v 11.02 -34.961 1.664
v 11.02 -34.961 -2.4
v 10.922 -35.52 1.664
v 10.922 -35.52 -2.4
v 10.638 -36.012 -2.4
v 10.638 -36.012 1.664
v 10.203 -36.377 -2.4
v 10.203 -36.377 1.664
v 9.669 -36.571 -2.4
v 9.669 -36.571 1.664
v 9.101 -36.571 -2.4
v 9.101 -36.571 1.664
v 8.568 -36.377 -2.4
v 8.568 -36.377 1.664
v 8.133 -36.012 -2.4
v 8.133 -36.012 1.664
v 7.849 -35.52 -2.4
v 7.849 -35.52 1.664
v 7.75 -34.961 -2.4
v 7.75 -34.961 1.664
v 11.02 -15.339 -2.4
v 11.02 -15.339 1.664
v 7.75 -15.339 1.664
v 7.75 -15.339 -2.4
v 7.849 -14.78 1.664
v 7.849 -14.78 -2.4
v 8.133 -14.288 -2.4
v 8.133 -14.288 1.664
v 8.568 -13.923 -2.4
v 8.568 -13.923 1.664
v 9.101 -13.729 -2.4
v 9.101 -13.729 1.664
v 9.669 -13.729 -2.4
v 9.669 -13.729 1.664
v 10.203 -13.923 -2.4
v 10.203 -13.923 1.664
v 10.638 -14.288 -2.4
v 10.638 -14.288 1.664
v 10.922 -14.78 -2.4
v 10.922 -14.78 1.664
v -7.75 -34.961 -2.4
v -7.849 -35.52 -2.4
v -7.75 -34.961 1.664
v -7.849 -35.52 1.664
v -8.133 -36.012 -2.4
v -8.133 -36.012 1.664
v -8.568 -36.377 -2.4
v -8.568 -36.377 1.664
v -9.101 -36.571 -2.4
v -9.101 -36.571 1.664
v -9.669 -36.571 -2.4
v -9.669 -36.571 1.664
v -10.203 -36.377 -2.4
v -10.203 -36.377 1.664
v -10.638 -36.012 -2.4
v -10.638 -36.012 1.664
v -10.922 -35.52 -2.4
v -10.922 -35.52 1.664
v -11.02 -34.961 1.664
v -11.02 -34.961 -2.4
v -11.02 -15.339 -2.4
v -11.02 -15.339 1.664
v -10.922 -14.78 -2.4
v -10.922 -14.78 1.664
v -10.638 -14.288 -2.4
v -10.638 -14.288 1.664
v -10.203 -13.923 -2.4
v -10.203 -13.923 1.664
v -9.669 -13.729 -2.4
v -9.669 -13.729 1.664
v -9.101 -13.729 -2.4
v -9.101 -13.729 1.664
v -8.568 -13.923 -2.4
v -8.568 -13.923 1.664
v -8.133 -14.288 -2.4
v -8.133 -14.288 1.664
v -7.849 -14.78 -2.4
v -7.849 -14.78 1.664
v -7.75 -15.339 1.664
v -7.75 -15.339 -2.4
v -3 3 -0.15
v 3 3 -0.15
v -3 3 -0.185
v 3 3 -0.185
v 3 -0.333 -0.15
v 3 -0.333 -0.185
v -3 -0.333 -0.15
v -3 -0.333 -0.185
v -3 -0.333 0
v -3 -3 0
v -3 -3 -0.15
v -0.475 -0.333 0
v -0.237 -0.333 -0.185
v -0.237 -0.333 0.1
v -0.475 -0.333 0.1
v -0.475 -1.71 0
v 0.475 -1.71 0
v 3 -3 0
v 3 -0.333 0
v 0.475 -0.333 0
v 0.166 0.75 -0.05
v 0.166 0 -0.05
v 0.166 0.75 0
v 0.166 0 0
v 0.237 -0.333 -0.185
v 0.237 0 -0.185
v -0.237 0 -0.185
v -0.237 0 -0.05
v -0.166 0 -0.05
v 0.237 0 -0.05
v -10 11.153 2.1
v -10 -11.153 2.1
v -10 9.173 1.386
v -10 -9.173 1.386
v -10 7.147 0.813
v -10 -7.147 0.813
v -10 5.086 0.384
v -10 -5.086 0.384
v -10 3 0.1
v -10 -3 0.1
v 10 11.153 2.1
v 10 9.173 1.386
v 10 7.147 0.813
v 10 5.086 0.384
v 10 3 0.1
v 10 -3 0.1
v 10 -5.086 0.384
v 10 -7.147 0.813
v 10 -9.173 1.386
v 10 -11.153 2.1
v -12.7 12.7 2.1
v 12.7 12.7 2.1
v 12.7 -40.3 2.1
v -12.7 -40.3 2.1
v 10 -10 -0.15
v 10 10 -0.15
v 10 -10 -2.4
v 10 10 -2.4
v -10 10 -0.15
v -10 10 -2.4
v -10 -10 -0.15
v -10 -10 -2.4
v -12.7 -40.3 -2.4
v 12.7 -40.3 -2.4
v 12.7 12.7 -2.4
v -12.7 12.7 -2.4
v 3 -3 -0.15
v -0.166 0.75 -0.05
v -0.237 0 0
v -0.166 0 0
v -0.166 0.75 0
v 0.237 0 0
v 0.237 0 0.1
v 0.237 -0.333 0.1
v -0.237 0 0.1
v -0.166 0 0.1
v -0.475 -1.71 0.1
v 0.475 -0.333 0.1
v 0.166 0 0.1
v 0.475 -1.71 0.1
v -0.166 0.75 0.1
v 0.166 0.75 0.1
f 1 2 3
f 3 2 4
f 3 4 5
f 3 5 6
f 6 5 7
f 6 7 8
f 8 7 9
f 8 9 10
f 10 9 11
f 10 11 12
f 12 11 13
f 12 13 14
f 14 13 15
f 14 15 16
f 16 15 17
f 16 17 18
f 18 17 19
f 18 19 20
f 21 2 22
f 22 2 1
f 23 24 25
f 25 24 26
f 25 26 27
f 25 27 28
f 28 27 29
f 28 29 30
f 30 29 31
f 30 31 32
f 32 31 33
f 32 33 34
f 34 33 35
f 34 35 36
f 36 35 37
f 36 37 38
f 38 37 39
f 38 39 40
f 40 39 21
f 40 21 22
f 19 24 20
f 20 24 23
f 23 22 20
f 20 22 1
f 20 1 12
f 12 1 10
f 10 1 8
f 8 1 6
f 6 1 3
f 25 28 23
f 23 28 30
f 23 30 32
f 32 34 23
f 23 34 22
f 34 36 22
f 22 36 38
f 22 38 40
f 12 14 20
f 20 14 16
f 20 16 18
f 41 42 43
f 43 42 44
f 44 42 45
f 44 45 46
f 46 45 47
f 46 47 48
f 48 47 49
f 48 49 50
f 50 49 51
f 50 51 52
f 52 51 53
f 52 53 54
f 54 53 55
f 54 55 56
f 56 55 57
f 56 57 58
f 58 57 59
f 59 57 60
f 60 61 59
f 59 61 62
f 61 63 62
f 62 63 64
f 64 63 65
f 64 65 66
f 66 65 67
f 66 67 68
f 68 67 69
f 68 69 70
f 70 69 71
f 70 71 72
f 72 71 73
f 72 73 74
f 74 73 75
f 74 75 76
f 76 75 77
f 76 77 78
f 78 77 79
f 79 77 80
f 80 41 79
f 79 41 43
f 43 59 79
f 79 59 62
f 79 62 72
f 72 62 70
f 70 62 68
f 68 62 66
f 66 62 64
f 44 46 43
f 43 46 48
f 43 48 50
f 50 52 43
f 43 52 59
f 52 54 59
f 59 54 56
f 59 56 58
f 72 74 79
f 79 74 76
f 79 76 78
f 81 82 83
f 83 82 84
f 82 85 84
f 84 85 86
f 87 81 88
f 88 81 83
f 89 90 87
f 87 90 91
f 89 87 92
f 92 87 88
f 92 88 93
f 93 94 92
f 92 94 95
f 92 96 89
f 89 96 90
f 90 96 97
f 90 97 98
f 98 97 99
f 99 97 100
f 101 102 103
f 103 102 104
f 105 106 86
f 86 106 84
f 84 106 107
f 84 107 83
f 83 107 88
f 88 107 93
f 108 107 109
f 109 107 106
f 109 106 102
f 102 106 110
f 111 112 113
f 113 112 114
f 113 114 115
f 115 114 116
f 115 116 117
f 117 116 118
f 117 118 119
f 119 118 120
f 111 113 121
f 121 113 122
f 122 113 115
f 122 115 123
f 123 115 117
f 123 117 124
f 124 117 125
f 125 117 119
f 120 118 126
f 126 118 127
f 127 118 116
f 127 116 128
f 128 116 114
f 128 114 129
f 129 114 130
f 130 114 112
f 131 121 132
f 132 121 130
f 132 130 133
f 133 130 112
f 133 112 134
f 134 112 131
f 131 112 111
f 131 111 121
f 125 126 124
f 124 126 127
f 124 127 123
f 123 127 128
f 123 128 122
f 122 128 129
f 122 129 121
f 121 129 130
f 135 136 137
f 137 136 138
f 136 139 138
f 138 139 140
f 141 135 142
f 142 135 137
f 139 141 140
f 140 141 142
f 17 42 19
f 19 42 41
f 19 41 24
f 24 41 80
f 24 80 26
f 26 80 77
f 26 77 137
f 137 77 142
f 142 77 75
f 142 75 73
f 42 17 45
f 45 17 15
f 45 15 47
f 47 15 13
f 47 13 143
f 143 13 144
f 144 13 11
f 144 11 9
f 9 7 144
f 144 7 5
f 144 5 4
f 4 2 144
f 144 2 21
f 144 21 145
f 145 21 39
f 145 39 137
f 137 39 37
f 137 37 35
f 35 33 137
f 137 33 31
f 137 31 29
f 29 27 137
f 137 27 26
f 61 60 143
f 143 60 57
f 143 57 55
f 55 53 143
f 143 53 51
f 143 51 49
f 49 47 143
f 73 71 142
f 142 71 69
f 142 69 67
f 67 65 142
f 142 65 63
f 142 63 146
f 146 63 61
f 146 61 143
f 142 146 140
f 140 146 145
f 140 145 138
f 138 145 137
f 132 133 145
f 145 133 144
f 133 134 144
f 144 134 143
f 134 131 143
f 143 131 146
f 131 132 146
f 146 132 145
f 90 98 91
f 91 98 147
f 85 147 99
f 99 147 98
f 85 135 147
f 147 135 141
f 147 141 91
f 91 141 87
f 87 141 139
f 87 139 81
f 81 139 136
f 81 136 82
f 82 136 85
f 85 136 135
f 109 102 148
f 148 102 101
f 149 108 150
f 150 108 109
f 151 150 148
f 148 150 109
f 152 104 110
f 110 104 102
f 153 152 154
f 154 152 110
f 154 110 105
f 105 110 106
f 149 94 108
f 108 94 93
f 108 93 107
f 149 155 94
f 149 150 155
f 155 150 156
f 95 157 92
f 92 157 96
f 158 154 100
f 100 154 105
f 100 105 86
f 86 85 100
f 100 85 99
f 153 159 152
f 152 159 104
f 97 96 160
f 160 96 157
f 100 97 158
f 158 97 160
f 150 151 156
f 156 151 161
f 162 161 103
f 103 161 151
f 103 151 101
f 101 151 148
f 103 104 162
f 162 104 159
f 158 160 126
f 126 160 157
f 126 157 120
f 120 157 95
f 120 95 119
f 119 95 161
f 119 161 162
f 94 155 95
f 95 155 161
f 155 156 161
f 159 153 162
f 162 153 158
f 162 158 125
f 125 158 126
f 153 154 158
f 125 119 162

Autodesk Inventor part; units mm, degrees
ref_plane "XZ Plane" through (0, 0, 0) normal (0, 1, 0) x (-1, 0, 0)
ref_plane "XY Plane" through (0, 0, 0) normal (0, 0, 1) x (1, 0, 0)
sketch "Sketch1" plane through (0, 0, 0) normal (0, 0, 1) x (1, 0, 0)
  line L0 (-3, -3) -> (3, -3)
  line L1 (3, -3) -> (3, 3)
  line L2 (3, 3) -> (-3, 3)
  line L3 (-3, 3) -> (-3, -3)
  line L4 (-3, -3) -> (3, 3) construction
  line L5 (3, -3) -> (-3, 3) construction
  point P0 (0, 0)
  dimension "platform_w" = 6
  dimension "platform_h" = 6
extrude "Thin_Platform" add sketch "Sketch1" along normal blind 0.1
sketch "Sketch2" plane through (0, 0, 0) normal (0, 0, -1) x (-1, 0, 0)
  line L0 (-0.475, 0) -> (0.475, 0)
  line L1 (0.475, 0) -> (0.475, -1.71)
  line L2 (0.475, -1.71) -> (-0.475, -1.71)
  line L3 (-0.475, -1.71) -> (-0.475, 0)
  line L4 (-0.1663, 0.75) -> (0.1663, 0.75)
  line L5 (0.1663, 0.75) -> (0.1663, 0)
  line L6 (0.1663, 0) -> (-0.1663, 0)
  line L7 (-0.1663, 0) -> (-0.1663, 0.75)
  line L8 (0, -14) -> (0, 14) construction
  line L9 (-4.2, 0) -> (4.2, 0) construction
  point P0 (0, 0)
  point P1 (0, 0)
  point P2 (0, 0)
  dimension "hole_w" = 0.95
  dimension "hole_l" = 1.71
  dimension "organ_channel_l" = 0.75
  dimension "organ_channel_w" = 0.3325
extrude "Hole" cut sketch "Sketch2" against normal blind 0.1
sketch "Sketch6" plane through (0, 0, 0.1) normal (0, 0, 1) x (1, 0, 0)
  line L0 (0.1663, 0) -> (0.475, 0) projected
  line L1 (0.475, 0) -> (0.2375, 0)
  line L2 (0.2375, 0) -> (0.2375, -0.3325)
  line L3 (0.2375, -0.3325) -> (0.475, -0.3325)
  line L4 (0.475, -0.3325) -> (0.475, 0)
  point P0 (0, 0)
  dimension "d18" = 0.2375
  dimension "d19" = 0.3325
extrude "Headrest" add sketch "Sketch6" against normal blind 0.15
mirror "Headrest_mirror" about plane through (0, 0, 0) normal (1, 0, 0) of "Headrest"
sketch "Sketch8" plane through (0, 0, 0) normal (0, 0, -1) x (-1, 0, 0)
  line L0 (0.2375, 0) -> (0.475, 0) projected
  line L1 (0.1663, 0.75) -> (0.1663, 0) projected
  line L2 (0.475, 0) -> (0.1663, 0)
  line L3 (0.1663, 0) -> (0.1663, 0.75)
  line L4 (0.1663, 0.75) -> (0.475, 0.75)
  line L5 (0.475, 0.75) -> (0.475, 0)
  line L6 (-0.2375, 0) -> (-0.475, 0) projected
  line L7 (-0.1663, 0) -> (-0.1663, 0.75) projected
  line L8 (-0.475, 0) -> (-0.1662, 0)
  line L9 (-0.1662, 0) -> (-0.1663, 0.75)
  line L10 (-0.1663, 0.75) -> (-0.475, 0.75)
  line L11 (-0.475, 0.75) -> (-0.475, 0)
  point P0 (0, 0)
extrude "Tape_1" add sketch "Sketch8" along normal blind 0.05 draft 0.05
sketch "Sketch9" plane through (0, 0, -0.05) normal (0, 0, -1) x (-1, 0, 0)
  line L0 (-0.475, 0) -> (-0.475, 0.75) projected
  line L1 (0.475, 0) -> (0.475, -0.3325) projected
  line L2 (-0.475, 0.75) -> (0.475, 0.75)
  line L3 (0.475, 0.75) -> (0.475, 0)
  line L4 (0.475, 0) -> (-0.475, 0)
  line L5 (-0.475, 0) -> (-0.475, 0.75)
  point P0 (0, 0)
extrude "Wax_Platform" add sketch "Sketch9" along normal blind 0.135
sketch "Sketch27" plane through (0, 0, 0) normal (0, 0, -1) x (-1, 0, 0)
  line L0 (3, 3) -> (-3, 3)
  line L1 (3, -0.3325) -> (3, 3)
  line L2 (-3, 3) -> (-3, -0.3325)
  line L3 (-3, 3) -> (3, 3)
  line L4 (0.475, -0.3325) -> (3, -0.3325)
  line L5 (-3, 3) -> (3, 3) projected
  line L6 (-0.475, -0.3325) -> (-3, -0.3325)
  line L7 (-3, -3) -> (-3, 3) projected
  line L8 (3, 3) -> (3, -3) projected
  line L9 (0.475, 0.75) -> (0.475, 0) projected
  line L10 (0.475, -0.3325) -> (0.475, 0.75)
  line L11 (0.475, 0.75) -> (-0.475, 0.75)
  line L12 (-0.475, 0.75) -> (-0.475, -0.3325)
  point P0 (-0.475, 0.75)
extrude "Pillow_Extension" [suppressed]
sketch "Sketch10" plane through (0, 0, 0.1) normal (0, 0, 1) x (1, 0, 0)
  line L0 (3, 3) -> (-3, 3) projected
  line L1 (3, -3) -> (3, 3) projected
  line L2 (-3, 3) -> (-3, -3) projected
  line L3 (-3, -3) -> (3, -3) projected
  line L4 (-10, -10) -> (10, -10)
  line L5 (10, -10) -> (10, 10)
  line L6 (10, 10) -> (-10, 10)
  line L7 (-10, 10) -> (-10, -10)
  line L8 (-10, -10) -> (10, 10) construction
  line L9 (10, -10) -> (-10, 10) construction
  point P0 (0, 0)
  dimension "d27" = 20
  dimension "d28" = 20
extrude "Field" add sketch "Sketch10" along normal mid plane 0.5
sketch "Plate_geometry" plane through (0, 0, 0.1) normal (0, 0, 1) x (1, 0, 0)
  line L0 (-12.7, 12.7) -> (12.7, 12.7)
  line L1 (12.7, 12.7) -> (12.7, -40.3)
  line L2 (12.7, -40.3) -> (-12.7, -40.3)
  line L3 (-12.7, -40.3) -> (-12.7, 12.7)
  line L4 (-12.7, 12.7) -> (12.7, -40.3) construction
  line L5 (12.7, 12.7) -> (-12.7, -40.3) construction
  line L6 (0, 23.3) -> (0, -50.9) projected
  line L7 (-114.4038, 0) -> (50.3472, 0) projected
  line L8 (-90.868, 12.7) -> (26.8113, 12.7) construction
  line L9 (-10, -10) -> (10, -10) projected
  line L10 (-10, 10) -> (-10, -10) projected
  line L11 (10, 10) -> (-10, 10) projected
  line L12 (10, -10) -> (10, 10) projected
  point P0 (0, 0)
  point P1 (0, -13.8)
  point P2 (0, -13.8)
  dimension "d31" = 25.4
  dimension "d32" = 53
  dimension "d33" = 12.7
extrude "Plate_Extr" add sketch "Plate_geometry" along normal blind 2 and the other way blind 2.5 contours L0 L6 L11 L10 L7 L3 | L0 L1 L7 L12 L11 L6 | L7 L10 L9 L6 L2 L3 | L1 L2 L6 L9 L12 L7
sketch "Organ_Channel" plane through (0, 0, 0.1) normal (0, 0, 1) x (1, 0, 0)
  line L0 (-3, -3) -> (3, -3) projected
  line L1 (3, -3) -> (3, 3) projected
  line L2 (3, 3) -> (-3, 3) projected
  line L3 (-3, 3) -> (-3, -3) projected
  line L4 (0.1662, 0.75) -> (-0.1662, 0.75) projected
  line L5 (0.1663, -0.75) -> (-0.1662, -0.75)
  line L6 (-0.1662, -0.75) -> (-0.1662, 0.75)
  line L7 (-0.1662, 0.75) -> (0.1663, 0.75)
  line L8 (0.1663, 0.75) -> (0.1663, -0.75)
  line L9 (0.1663, -0.75) -> (-0.1662, 0.75) construction
  line L10 (-0.1662, -0.75) -> (0.1663, 0.75) construction
  point P0 (0, 0)
  dimension "d43" = 0.3325
  dimension "d44" = 1.5
sketch "Headrest_Hole" plane through (0, 0, 0.1) normal (0, 0, 1) x (1, 0, 0)
  line L0 (-0.1662, 0) -> (0.1662, 0) projected
  line L1 (-0.2375, 0) -> (-0.1663, 0) projected
  line L2 (-0.2375, 0) -> (-0.2375, -0.3325) projected
  line L3 (-0.2375, -0.3325) -> (-0.475, -0.3325) projected
  line L4 (-0.475, -1.71) -> (-0.475, -0.3325) projected
  line L5 (0.475, -1.71) -> (-0.475, -1.71) projected
  line L6 (0.475, -0.3325) -> (0.475, -1.71) projected
  line L7 (0.2375, -0.3325) -> (0.475, -0.3325) projected
  line L8 (0.2375, 0) -> (0.2375, -0.3325) projected
  line L9 (0.1663, 0) -> (0.2375, 0) projected
  point P0 (0, 0)
sketch "Tape_0" plane through (0, 0, 0) normal (0, 0, -1) x (-1, 0, 0)
  line L0 (3, -3) -> (-3, -3) projected
  line L1 (3, 3) -> (3, -3) projected
  line L2 (-3, -3) -> (-3, 3) projected
  line L3 (0.475, -0.3325) -> (0.475, -1.71) projected
  line L4 (0.475, -1.71) -> (-0.475, -1.71) projected
  line L5 (-0.475, -1.71) -> (-0.475, -0.3325) projected
  line L6 (-0.475, -0.3325) -> (-0.475, 0) projected
  line L7 (-0.475, -0.3325) -> (0.475, -0.3325)
  line L8 (0.475, -0.3325) -> (0.475, 0.75)
  line L9 (0.475, 0.75) -> (-0.475, 0.75)
  line L10 (-0.475, 0.75) -> (-0.475, -0.3325)
  line L11 (-0.475, -0.3325) -> (0.475, 0.75) construction
  line L12 (0.475, -0.3325) -> (-0.475, 0.75) construction
  line L13 (-1.4815, 1.2193) -> (-1.4815, 2.3021)
  line L14 (-1.4815, 2.3021) -> (-2.3274, 2.3021)
  line L15 (-2.3274, 2.3021) -> (-2.3274, 1.2193)
  line L16 (-2.3274, 1.2193) -> (-1.4815, 1.2193)
  line L17 (-1.4815, 1.2193) -> (-2.3274, 2.3021) construction
  line L18 (-1.4815, 2.3021) -> (-2.3274, 1.2193) construction
  line L19 (0, 0.2087) -> (0, 0.75) construction
  line L20 (0.475, 0.75) -> (-0.475, 0.75) construction
  line L21 (0, -14) -> (0, 14) construction
  line L22 (0.1663, 0.75) -> (-0.1663, 0.75) construction
  line L23 (-0.475, -0.3325) -> (-0.2375, -0.3325) construction
  line L24 (-0.475, 0.75) -> (-0.475, 0) construction
  line L25 (0.1663, 0.75) -> (0.475, 0.75) projected
  line L26 (-0.475, 0) -> (-0.475, 0.75) projected
  line L27 (-0.475, 0.75) -> (-0.1663, 0.75) projected
  line L28 (-0.1663, 0.75) -> (0.1663, 0.75) projected
  line L29 (-3, 3) -> (3, 3) projected
  line L30 (0.475, 0.75) -> (0.475, 0) projected
  line L31 (0.475, 0) -> (0.475, -0.3325) projected
  point P0 (-1.9045, 1.7607)
sketch "Organ_Tape_Face" plane through (0, 0, -0.185) normal (0, 0, -1) x (-1, 0, 0)
  line L0 (0.475, 0.75) -> (-0.475, 0.75) projected
  line L1 (-0.475, 0.75) -> (-0.475, 0) projected
  line L2 (-0.475, 0) -> (0.475, 0) projected
  line L3 (-0.975, 1.25) -> (1, 1.25)
  line L4 (1, 1.25) -> (1, -0.5)
  line L5 (1, -0.5) -> (-0.975, -0.5)
  line L6 (-0.975, -0.5) -> (-0.975, 1.25)
  line L7 (0.475, 0) -> (0.475, 0.75) projected
  point P0 (0, 0)
  dimension "d45" = 0.5
sketch "Headrest_Pillows" plane through (0, 0, -0.05) normal (0, 0, -1) x (-1, 0, 0)
  line L0 (0.975, -0.3325) -> (0.975, -1.71)
  line L1 (0.975, -1.71) -> (-1.025, -1.71)
  line L2 (-1.025, -1.71) -> (-1.025, -0.3325)
  line L3 (0.475, -1.71) -> (-0.475, -1.71) projected
  line L4 (-0.475, 0) -> (-0.475, -0.3325) projected
  line L5 (-0.475, -0.3325) -> (-0.2375, -0.3325) projected
  line L6 (-0.2375, -0.3325) -> (-0.2375, 0) projected
  line L7 (0.2375, -0.3325) -> (0.2375, 0) projected
  line L8 (0.475, -0.3325) -> (0.2375, -0.3325) projected
  line L9 (0.475, 0) -> (0.475, -0.3325) projected
  line L10 (-1.025, -0.3325) -> (-0.475, -0.3325)
  line L11 (-0.2375, 0) -> (0.2375, 0)
  line L12 (0.475, -0.3325) -> (0.975, -0.3325)
  line L13 (-0.2375, -0.3325) -> (-0.475, -0.3325) projected
sketch "Sketch20" plane through (0, 0, 0) normal (1, 0, 0) x (0, 1, 0)
  line L0 (10, 0.35) -> (10, 2.1)
  line L1 (-10, 0.35) -> (-10, 2.1)
  line L2 (-3, 0) -> (3, 0)
  line L3 (-10, 2.1) -> (10, 2.1)
  ellipse E0 centre (0, 2.1) end of major axis (-10, 2.1) minor radius 2
  line L4 (-10, 0.35) -> (10, 0.35)
  point P0 (0, 0)
  point P1 (0, 0)
  point P2 (0, 0.1)
sketch "Sketch21" plane through (0, 0, 0) normal (1, 0, 0) x (0, 1, 0)
  line L0 (0, -6.2139) -> (0, 35.9769) construction
  line L1 (0, 35.9769) -> (0, -6.2139) construction
  line L2 (10, 0.35) -> (10, 2.1) construction
  line L3 (-10, 0.35) -> (10, 0.35) construction
  line L4 (3, 0.35) -> (3, 0.1) projected
  line L5 (-3, 0.1) -> (3, 0.1) projected
  line L6 (-40.3, 2.1) -> (12.7, 2.1) projected
  arc A0 (3, 0.1) -> (11.1534, 2.1) centre (0, 29.9496) ccw
  arc A1 (-11.1534, 2.1) -> (-3, 0.1) centre (0, 29.9496) ccw
  point P0 (0, 0)
sketch "Sketch22" plane through (0, 0, 0) normal (1, 0, 0) x (0, 1, 0)
  line L0 (0, -22.9178) -> (0, 61.0822) construction
  line L1 (0, 61.0822) -> (0, -22.9178) construction
  line L2 (10, 0.35) -> (10, 2.1) construction
  line L3 (-10, 0.35) -> (10, 0.35) construction
  line L4 (3, 0.35) -> (3, 0.1)
  line L5 (-3, 0.1) -> (3, 0.1)
  line L6 (-40.3, 2.1) -> (12.7, 2.1)
  arc A0 (4.8849, 0.35) -> (10, 1.6654) centre (0, 29.9496) ccw
  arc A1 (-10, 1.6654) -> (-4.8849, 0.35) centre (0, 29.9496) ccw
  line L7 (-10, 0.35) -> (10, 0.35) projected
  line L8 (10, 1.6654) -> (10, 0.35)
  line L9 (10, 0.35) -> (4.8849, 0.35)
  line L10 (-10, 0.35) -> (-10, 2.1) projected
  line L11 (-10, 1.6654) -> (-10, 0.35)
  line L12 (-10, 0.35) -> (-4.8849, 0.35)
  point P0 (0, 0)
  point P1 (0, 0)
extrude "Extrusion10" cut sketch "Sketch21" along normal mid plane 20
extrude "Extrusion11" add sketch "Sketch22" along normal mid plane 20
sketch "Sketch24" plane through (0, 0, -2.4) normal (0, 0, -1) x (-1, 0, 0)
  line L0 (-3, -3) -> (-3, 3) projected
  line L1 (3, 3) -> (3, -3) projected
  line L2 (3, -3) -> (-3, -3) projected
  line L3 (-10, -10) -> (10, -10) projected
  line L4 (10, -10) -> (10, 10) projected
  line L5 (10, 10) -> (-10, 10) projected
  line L6 (-10, 10) -> (-10, -10) projected
  line L7 (12.7, 12.7) -> (12.7, -12.7)
  line L8 (12.7, -12.7) -> (-12.7, -12.7)
  line L9 (-12.7, -12.7) -> (-12.7, 12.7)
  line L10 (-12.7, 12.7) -> (12.7, 12.7)
  line L11 (-3, 3) -> (3, 3) projected
  point P0 (0, 0)
extrude "Extrusion12" [suppressed]
sketch "Sketch26" plane through (0, 0, -0.05) normal (0, 0, -1) x (-1, 0, 0)
  line L0 (-0.1662, 0.75) -> (-0.1662, 0.75) projected
  line L1 (-0.475, 0) -> (-0.475, 0.75) projected
  line L2 (-0.475, 0) -> (-0.475, 0) projected
  line L3 (-0.475, 0) -> (-0.475, -0.3325) projected
  line L4 (-0.475, -0.3325) -> (-0.2375, -0.3325) projected
  line L5 (-0.2375, -0.3325) -> (-0.2375, 0) projected
  line L6 (-0.1662, 0) -> (-0.2375, 0) projected
  line L7 (0.1662, 0) -> (0.1662, 0) projected
  line L8 (0.2375, 0) -> (0.1662, 0) projected
  line L9 (0.2375, -0.3325) -> (0.2375, 0) projected
  line L10 (0.475, -0.3325) -> (0.2375, -0.3325) projected
  line L11 (-0.475, 0) -> (-0.475, -0.3325) projected
  line L12 (-0.2375, -0.3325) -> (-0.475, -0.3325)
  line L13 (-0.475, -0.3325) -> (-0.475, 0)
  line L14 (-0.475, 0) -> (-0.2375, 0)
  line L15 (-0.2375, 0) -> (-0.2375, -0.3325)
  line L16 (0.475, -0.3325) -> (0.2375, -0.3325) projected
  line L17 (0.2375, -0.3325) -> (0.2375, 0) projected
  line L18 (0.475, -0.3325) -> (0.2375, -0.3325)
  line L19 (0.2375, -0.3325) -> (0.2375, 0)
  line L20 (0.2375, 0) -> (0.475, 0)
  line L21 (0.475, 0) -> (0.475, -0.3325)
  line L22 (0.475, 0) -> (0.1662, 0) projected
  line L23 (0.475, 0) -> (0.1662, 0) projected
  line L24 (0.1662, 0.75) -> (0.475, 0.75) projected
  line L25 (0.1662, 0.75) -> (0.1662, 0.75) projected
  line L26 (0.1662, 0.75) -> (0.475, 0.75) projected
  line L27 (-0.475, 0.75) -> (-0.1662, 0.75) projected
  line L28 (-0.1662, 0.75) -> (-0.1662, 0.75) projected
  line L29 (-0.475, 0.75) -> (-0.1662, 0.75) projected
  line L30 (-0.475, 0) -> (-0.475, 0.75) projected
  line L31 (-0.475, 0) -> (-0.475, 0) projected
  line L32 (-0.475, 0) -> (-0.475, -0.3325) projected
  line L33 (-0.475, -0.3325) -> (-0.2375, -0.3325) projected
  line L34 (-0.2375, -0.3325) -> (-0.2375, 0) projected
  line L35 (-0.1662, 0) -> (-0.2375, 0) projected
  line L36 (-0.1662, 0) -> (-0.1662, 0) projected
  line L37 (-0.475, 0) -> (-0.475, 0.75) projected
  line L38 (-0.475, 0.75) -> (-0.1662, 0.75) projected
  line L39 (-0.475, 0.75) -> (-0.1662, 0.75) projected
  line L40 (-0.1662, 0) -> (-0.1662, 0) projected
  line L41 (-0.475, 0) -> (-0.475, 0.75) projected
  line L42 (0.1662, 0) -> (0.1662, 0) projected
  line L43 (0.2375, 0) -> (0.1662, 0) projected
  line L44 (0.2375, -0.3325) -> (0.2375, 0) projected
  line L45 (0.475, -0.3325) -> (0.2375, -0.3325) projected
  line L46 (0.1662, 0.75) -> (0.475, 0.75) projected
  line L47 (0.1662, 0.75) -> (0.1662, 0.75) projected
  line L48 (0.1662, 0.75) -> (0.475, 0.75) projected
  line L49 (-0.2375, -0.3325) -> (-0.475, -0.3325)
  line L50 (-0.475, -0.3325) -> (-0.475, 0)
  line L51 (-0.475, 0) -> (-0.2375, 0)
  line L52 (-0.2375, 0) -> (-0.2375, -0.3325)
  line L53 (0.2375, -0.3325) -> (0.475, -0.3325)
  line L54 (0.475, -0.3325) -> (0.475, 0)
  line L55 (0.475, 0) -> (0.2375, 0)
  line L56 (0.2375, 0) -> (0.2375, -0.3325)
  line L57 (-0.1662, 0) -> (-0.475, 0) projected
  line L58 (0.475, 0) -> (0.475, -0.3325) projected
  line L59 (0.475, 0) -> (0.475, 0) projected
  line L60 (0.475, 0.75) -> (0.475, 0) projected
  line L61 (0.475, 0.75) -> (0.475, 0) projected
  line L62 (-0.1662, 0) -> (-0.475, 0) projected
  line L63 (0.475, 0) -> (0.475, -0.3325) projected
  line L64 (0.475, 0) -> (0.475, 0) projected
  line L65 (0.475, 0.75) -> (0.475, 0) projected
  line L66 (0.475, 0.75) -> (0.475, 0) projected
  point P0 (0, 0)
extrude "Extrusion13" [suppressed]
sketch "Sketch28" plane through (-0.1662, 0, -0.05) normal (0, 0, -1) x (-1, 0, 0)
  line L0 (0.0713, 0) -> (0.0713, -0.3325) projected
  line L1 (0.3087, -0.3325) -> (0.3087, 0) projected
  line L2 (0.0713, -0.3325) -> (0.3087, -0.3325)
  line L3 (0.3087, -0.3325) -> (0.3087, 0)
  line L4 (0.3087, 0) -> (0.0713, 0)
  line L5 (0.0713, 0) -> (0.0713, -0.3325)
  line L6 (-0.6412, 0) -> (-0.6412, 0.75) projected
  line L7 (-0.4037, -0.3325) -> (-0.6412, -0.3325)
  line L8 (-0.6412, -0.3325) -> (-0.6412, 0)
  line L9 (-0.6412, 0) -> (-0.4037, 0)
  line L10 (-0.4037, 0) -> (-0.4037, -0.3325)
  line L11 (-0.4037, -0.3325) -> (-0.4037, 0) projected
  point P0 (-0.1662, 0)
extrude "Extrusion15" add sketch "Sketch28" along normal up to surface (0.135 mm away)
sketch "Sketch29" plane through (0, 0, 0) normal (0, 0, -1) x (-1, 0, 0)
  line L0 (-3, -3) -> (-3, 3) projected
  line L1 (3, 3) -> (3, -3) projected
  line L2 (-3, 3) -> (3, 3)
  line L3 (3, 3) -> (3, -0.3325)
  line L4 (-3, -0.3325) -> (-3, 3)
  line L5 (-0.2375, -0.3325) -> (-0.475, -0.3325) projected
  line L6 (-0.475, 0.75) -> (-0.475, -0.3325) projected
  line L7 (0.475, 0) -> (0.475, -0.3325) projected
  line L8 (-0.475, 0.75) -> (0.475, 0.75)
  line L9 (0.475, 0.75) -> (0.475, -0.3325)
  line L10 (-0.475, -0.3325) -> (-0.475, 0.75)
  line L11 (3, -0.3325) -> (0.475, -0.3325)
  line L12 (-0.475, -0.3325) -> (-3, -0.3325)
  point P0 (0, 0)
extrude "Extrusion16" add sketch "Sketch29" along normal up to surface (0.185 mm away)
ref_plane "Work Plane1" through (0, 0, -6.2956) normal (0, 0, -1) x (-1, 0, 0)
ref_plane "Work Plane2" through (-12.7, -13.8, 2.1) normal (0, 1, 0) x (1, 0, 0)
sketch "Sketch30" plane through (0, 0, -2.4) normal (0, 0, -1) x (-1, 0, 0)
  line L0 (7.75, -10) -> (7.75, -40.3) construction
  line L1 (-12.7, -40.3) -> (12.7, -40.3) construction
  line L2 (10, -10) -> (-10, -10) construction
  line L3 (0, -25.15) -> (36.8265, -25.15) construction
  line L4 (0, -10) -> (0, -40.3) construction
  line L5 (9.3851, -15.3393) -> (9.3851, -34.9608) construction
  line L6 (7.75, -15.3393) -> (7.75, -34.9608)
  line L7 (11.0202, -34.9608) -> (11.0202, -15.3393)
  arc A0 (11.0202, -15.3393) -> (7.75, -15.3393) centre (9.3851, -15.3393) ccw
  arc A1 (7.75, -34.9608) -> (11.0202, -34.9608) centre (9.3851, -34.9608) ccw
  point P0 (0, 0)
  point P1 (9.3851, -25.15)
  dimension "d70" = 7.75
  dimension "d73" = 3.2702
  dimension "d74" = 19.6215
extrude "Extrusion17" cut sketch "Sketch30" against normal blind 4.064
mirror "Mirror3" about plane through (0, 0, 0) normal (1, 0, 0) of "Extrusion17"
equation "\"organ_channel_w\" = 0.35 * hole_w"
equation "\"d18\" = 0.25 * hole_w"
equation "\"d19\" = 1.4 * d18"
equation "\"head_rest\" = 1.5 * platform_th"
equation "\"d23\" = head_rest - platform_th"
equation "\"d43\" = organ_channel_w"
equation "\"d44\" = 2 * organ_channel_l"
equation "\"platform_th\" = 0.1"
properties part number "Mosquito Holder v12 RU - Delrin"
